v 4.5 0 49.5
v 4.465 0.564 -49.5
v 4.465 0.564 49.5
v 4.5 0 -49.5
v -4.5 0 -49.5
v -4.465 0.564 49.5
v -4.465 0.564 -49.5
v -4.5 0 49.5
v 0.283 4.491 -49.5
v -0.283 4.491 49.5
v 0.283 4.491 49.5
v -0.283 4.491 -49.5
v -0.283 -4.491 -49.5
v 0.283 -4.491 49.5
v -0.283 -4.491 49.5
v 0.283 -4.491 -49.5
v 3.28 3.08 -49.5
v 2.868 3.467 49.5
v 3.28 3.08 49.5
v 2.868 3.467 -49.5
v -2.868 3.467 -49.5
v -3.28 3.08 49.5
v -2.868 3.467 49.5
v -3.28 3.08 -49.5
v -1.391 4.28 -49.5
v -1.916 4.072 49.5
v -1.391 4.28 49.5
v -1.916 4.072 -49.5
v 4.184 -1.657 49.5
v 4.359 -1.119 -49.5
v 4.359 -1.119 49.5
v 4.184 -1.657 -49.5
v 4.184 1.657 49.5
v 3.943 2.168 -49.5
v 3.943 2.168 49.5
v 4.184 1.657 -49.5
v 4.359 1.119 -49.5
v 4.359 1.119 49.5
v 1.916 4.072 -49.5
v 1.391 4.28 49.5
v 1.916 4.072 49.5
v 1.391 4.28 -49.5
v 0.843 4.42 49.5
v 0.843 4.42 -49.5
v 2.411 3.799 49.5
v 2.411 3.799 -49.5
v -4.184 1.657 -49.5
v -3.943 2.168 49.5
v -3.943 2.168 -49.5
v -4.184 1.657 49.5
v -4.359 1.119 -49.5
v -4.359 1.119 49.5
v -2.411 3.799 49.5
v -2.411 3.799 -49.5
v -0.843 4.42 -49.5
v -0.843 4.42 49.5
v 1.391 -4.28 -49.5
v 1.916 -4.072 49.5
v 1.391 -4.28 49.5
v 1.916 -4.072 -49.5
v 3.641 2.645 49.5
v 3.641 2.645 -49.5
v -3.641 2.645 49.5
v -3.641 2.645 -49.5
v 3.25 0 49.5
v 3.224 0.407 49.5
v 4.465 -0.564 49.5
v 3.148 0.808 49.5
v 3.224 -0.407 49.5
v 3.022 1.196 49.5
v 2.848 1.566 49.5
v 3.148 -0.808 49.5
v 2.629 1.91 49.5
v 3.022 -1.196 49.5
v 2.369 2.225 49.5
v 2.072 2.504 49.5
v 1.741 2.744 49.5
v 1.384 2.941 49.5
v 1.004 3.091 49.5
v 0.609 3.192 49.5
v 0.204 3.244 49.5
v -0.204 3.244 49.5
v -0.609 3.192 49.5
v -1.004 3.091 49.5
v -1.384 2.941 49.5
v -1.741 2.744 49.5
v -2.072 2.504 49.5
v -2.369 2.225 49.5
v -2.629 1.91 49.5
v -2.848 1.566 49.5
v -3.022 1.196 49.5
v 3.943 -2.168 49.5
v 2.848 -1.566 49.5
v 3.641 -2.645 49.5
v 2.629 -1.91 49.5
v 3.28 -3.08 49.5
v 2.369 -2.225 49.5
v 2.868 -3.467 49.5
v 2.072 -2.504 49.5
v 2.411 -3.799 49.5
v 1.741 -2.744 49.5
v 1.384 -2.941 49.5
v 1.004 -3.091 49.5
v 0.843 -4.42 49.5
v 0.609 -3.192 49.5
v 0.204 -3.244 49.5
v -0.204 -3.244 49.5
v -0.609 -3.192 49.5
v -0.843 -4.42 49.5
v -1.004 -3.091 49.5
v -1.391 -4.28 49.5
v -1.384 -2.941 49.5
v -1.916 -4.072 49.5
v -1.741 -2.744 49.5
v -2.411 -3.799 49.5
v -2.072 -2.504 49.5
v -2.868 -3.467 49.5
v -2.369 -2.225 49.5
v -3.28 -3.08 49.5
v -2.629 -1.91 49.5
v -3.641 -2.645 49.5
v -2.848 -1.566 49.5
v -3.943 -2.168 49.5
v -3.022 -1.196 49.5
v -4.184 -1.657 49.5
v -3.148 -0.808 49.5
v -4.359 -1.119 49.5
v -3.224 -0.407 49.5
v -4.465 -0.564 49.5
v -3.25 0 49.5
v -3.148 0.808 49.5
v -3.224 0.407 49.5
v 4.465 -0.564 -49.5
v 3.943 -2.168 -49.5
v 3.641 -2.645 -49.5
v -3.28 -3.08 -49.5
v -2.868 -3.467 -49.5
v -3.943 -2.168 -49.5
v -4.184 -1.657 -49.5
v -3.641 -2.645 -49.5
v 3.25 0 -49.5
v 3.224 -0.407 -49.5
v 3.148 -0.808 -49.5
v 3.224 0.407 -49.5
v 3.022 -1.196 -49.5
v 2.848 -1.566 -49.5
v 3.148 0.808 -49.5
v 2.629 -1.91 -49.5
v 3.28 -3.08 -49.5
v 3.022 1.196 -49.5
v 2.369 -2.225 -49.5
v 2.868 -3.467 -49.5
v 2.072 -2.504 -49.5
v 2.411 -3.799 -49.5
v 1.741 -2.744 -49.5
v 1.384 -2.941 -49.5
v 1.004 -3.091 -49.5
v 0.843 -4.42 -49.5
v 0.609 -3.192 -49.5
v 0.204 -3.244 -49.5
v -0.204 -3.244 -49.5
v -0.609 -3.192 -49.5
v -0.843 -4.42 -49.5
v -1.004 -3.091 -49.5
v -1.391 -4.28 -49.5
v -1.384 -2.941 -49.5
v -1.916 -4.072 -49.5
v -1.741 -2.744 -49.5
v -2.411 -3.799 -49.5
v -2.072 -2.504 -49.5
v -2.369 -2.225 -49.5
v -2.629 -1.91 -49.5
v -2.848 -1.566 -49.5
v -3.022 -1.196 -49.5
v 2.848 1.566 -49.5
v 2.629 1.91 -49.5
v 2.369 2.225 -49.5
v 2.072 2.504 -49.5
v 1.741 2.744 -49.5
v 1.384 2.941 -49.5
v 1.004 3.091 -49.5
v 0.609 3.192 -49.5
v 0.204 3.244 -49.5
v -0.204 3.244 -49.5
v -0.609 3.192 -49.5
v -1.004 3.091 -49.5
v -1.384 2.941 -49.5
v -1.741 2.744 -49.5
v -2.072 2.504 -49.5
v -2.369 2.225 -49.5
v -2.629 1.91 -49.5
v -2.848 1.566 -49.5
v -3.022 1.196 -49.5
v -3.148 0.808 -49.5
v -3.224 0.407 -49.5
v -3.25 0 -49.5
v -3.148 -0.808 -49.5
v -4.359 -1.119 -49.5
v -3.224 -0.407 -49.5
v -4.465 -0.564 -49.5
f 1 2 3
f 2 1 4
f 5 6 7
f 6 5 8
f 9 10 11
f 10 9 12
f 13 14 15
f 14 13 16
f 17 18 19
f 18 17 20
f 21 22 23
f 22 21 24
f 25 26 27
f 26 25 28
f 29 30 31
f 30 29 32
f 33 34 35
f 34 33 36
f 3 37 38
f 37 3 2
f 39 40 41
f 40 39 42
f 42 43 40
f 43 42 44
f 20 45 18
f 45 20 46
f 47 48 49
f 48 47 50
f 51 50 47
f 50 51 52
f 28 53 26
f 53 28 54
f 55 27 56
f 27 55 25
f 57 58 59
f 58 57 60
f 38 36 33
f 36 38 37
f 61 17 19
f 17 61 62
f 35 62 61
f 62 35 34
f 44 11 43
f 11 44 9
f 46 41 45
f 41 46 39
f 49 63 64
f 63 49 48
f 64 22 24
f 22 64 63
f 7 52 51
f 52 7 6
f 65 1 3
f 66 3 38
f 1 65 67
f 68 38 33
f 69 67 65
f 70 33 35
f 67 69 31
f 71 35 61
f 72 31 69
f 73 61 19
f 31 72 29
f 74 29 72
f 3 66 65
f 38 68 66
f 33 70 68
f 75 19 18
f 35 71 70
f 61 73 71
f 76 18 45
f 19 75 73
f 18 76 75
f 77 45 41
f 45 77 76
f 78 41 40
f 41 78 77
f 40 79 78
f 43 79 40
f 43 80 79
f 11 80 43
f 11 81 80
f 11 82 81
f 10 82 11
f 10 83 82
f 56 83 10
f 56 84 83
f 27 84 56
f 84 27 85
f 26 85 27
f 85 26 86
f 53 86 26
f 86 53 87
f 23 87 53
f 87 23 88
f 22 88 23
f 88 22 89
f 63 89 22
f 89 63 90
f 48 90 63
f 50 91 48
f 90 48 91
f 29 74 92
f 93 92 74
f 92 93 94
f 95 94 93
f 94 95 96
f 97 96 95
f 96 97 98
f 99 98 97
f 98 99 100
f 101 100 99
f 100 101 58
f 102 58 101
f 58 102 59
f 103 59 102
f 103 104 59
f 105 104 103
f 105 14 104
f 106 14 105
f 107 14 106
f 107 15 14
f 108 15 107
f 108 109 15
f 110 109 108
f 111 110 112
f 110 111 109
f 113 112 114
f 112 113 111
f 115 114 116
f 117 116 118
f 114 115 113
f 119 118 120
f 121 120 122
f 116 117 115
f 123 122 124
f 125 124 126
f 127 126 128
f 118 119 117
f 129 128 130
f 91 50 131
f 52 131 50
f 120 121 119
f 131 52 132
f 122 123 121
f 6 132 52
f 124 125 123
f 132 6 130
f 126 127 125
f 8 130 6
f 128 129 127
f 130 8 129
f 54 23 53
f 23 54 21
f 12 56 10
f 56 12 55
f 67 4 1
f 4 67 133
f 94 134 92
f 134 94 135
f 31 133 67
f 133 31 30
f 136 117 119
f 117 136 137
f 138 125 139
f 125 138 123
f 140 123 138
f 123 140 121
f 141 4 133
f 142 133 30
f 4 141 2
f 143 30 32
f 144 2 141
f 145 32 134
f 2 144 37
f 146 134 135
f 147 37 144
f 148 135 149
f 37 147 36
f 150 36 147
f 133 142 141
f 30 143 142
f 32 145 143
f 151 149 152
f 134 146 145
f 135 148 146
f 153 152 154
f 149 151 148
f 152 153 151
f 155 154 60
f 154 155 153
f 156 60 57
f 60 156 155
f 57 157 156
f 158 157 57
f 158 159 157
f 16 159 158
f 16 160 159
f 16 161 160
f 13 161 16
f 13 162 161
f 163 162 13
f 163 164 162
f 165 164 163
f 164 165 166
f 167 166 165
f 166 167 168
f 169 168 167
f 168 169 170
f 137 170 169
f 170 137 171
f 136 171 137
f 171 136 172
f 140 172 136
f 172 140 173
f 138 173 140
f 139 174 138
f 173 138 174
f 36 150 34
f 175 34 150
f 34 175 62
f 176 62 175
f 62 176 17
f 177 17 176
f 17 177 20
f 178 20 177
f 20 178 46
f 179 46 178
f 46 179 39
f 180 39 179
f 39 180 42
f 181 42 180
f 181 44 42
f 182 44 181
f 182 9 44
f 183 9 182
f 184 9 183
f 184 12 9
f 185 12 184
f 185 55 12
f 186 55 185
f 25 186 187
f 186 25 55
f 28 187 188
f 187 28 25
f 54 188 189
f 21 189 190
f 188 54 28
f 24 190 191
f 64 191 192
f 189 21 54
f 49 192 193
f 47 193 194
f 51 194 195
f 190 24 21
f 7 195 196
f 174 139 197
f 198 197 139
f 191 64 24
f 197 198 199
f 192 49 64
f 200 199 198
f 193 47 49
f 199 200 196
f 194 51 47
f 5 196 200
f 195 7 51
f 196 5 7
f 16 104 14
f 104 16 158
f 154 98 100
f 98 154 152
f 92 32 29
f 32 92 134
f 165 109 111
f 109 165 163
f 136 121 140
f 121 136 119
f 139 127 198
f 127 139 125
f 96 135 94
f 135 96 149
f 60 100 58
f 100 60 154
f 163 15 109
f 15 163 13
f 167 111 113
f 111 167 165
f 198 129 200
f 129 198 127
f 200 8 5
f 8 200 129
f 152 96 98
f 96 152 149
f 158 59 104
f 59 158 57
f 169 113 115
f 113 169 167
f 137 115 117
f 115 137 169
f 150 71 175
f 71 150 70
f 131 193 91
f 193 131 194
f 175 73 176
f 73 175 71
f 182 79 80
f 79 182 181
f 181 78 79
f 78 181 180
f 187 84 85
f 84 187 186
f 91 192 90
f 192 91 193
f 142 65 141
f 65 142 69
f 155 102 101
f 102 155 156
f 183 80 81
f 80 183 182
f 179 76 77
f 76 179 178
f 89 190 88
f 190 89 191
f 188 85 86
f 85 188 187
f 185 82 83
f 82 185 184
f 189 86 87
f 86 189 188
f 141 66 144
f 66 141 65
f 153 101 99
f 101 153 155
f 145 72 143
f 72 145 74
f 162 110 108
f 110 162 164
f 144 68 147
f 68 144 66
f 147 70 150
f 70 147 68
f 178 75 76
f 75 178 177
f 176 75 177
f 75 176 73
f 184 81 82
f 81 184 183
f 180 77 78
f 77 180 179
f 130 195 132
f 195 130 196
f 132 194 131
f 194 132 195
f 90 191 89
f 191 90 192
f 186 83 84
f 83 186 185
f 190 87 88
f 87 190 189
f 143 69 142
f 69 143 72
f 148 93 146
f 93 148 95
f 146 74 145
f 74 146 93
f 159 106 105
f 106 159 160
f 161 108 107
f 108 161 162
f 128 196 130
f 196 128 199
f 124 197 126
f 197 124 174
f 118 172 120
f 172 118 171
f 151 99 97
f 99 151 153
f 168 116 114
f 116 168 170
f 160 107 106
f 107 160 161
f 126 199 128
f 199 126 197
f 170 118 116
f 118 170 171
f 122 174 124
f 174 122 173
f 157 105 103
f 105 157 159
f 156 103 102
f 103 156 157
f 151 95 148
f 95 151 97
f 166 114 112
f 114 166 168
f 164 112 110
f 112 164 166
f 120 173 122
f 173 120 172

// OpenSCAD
$fn = 50;


difference() {
	union() {
		translate(v = [0, 0, -49.5000000000]) {
			cylinder(h = 99, r = 4.5000000000);
		}
	}
	union() {
		translate(v = [0, 0, -100.0000000000]) {
			cylinder(h = 200, r = 3.2500000000);
		}
	}
}
